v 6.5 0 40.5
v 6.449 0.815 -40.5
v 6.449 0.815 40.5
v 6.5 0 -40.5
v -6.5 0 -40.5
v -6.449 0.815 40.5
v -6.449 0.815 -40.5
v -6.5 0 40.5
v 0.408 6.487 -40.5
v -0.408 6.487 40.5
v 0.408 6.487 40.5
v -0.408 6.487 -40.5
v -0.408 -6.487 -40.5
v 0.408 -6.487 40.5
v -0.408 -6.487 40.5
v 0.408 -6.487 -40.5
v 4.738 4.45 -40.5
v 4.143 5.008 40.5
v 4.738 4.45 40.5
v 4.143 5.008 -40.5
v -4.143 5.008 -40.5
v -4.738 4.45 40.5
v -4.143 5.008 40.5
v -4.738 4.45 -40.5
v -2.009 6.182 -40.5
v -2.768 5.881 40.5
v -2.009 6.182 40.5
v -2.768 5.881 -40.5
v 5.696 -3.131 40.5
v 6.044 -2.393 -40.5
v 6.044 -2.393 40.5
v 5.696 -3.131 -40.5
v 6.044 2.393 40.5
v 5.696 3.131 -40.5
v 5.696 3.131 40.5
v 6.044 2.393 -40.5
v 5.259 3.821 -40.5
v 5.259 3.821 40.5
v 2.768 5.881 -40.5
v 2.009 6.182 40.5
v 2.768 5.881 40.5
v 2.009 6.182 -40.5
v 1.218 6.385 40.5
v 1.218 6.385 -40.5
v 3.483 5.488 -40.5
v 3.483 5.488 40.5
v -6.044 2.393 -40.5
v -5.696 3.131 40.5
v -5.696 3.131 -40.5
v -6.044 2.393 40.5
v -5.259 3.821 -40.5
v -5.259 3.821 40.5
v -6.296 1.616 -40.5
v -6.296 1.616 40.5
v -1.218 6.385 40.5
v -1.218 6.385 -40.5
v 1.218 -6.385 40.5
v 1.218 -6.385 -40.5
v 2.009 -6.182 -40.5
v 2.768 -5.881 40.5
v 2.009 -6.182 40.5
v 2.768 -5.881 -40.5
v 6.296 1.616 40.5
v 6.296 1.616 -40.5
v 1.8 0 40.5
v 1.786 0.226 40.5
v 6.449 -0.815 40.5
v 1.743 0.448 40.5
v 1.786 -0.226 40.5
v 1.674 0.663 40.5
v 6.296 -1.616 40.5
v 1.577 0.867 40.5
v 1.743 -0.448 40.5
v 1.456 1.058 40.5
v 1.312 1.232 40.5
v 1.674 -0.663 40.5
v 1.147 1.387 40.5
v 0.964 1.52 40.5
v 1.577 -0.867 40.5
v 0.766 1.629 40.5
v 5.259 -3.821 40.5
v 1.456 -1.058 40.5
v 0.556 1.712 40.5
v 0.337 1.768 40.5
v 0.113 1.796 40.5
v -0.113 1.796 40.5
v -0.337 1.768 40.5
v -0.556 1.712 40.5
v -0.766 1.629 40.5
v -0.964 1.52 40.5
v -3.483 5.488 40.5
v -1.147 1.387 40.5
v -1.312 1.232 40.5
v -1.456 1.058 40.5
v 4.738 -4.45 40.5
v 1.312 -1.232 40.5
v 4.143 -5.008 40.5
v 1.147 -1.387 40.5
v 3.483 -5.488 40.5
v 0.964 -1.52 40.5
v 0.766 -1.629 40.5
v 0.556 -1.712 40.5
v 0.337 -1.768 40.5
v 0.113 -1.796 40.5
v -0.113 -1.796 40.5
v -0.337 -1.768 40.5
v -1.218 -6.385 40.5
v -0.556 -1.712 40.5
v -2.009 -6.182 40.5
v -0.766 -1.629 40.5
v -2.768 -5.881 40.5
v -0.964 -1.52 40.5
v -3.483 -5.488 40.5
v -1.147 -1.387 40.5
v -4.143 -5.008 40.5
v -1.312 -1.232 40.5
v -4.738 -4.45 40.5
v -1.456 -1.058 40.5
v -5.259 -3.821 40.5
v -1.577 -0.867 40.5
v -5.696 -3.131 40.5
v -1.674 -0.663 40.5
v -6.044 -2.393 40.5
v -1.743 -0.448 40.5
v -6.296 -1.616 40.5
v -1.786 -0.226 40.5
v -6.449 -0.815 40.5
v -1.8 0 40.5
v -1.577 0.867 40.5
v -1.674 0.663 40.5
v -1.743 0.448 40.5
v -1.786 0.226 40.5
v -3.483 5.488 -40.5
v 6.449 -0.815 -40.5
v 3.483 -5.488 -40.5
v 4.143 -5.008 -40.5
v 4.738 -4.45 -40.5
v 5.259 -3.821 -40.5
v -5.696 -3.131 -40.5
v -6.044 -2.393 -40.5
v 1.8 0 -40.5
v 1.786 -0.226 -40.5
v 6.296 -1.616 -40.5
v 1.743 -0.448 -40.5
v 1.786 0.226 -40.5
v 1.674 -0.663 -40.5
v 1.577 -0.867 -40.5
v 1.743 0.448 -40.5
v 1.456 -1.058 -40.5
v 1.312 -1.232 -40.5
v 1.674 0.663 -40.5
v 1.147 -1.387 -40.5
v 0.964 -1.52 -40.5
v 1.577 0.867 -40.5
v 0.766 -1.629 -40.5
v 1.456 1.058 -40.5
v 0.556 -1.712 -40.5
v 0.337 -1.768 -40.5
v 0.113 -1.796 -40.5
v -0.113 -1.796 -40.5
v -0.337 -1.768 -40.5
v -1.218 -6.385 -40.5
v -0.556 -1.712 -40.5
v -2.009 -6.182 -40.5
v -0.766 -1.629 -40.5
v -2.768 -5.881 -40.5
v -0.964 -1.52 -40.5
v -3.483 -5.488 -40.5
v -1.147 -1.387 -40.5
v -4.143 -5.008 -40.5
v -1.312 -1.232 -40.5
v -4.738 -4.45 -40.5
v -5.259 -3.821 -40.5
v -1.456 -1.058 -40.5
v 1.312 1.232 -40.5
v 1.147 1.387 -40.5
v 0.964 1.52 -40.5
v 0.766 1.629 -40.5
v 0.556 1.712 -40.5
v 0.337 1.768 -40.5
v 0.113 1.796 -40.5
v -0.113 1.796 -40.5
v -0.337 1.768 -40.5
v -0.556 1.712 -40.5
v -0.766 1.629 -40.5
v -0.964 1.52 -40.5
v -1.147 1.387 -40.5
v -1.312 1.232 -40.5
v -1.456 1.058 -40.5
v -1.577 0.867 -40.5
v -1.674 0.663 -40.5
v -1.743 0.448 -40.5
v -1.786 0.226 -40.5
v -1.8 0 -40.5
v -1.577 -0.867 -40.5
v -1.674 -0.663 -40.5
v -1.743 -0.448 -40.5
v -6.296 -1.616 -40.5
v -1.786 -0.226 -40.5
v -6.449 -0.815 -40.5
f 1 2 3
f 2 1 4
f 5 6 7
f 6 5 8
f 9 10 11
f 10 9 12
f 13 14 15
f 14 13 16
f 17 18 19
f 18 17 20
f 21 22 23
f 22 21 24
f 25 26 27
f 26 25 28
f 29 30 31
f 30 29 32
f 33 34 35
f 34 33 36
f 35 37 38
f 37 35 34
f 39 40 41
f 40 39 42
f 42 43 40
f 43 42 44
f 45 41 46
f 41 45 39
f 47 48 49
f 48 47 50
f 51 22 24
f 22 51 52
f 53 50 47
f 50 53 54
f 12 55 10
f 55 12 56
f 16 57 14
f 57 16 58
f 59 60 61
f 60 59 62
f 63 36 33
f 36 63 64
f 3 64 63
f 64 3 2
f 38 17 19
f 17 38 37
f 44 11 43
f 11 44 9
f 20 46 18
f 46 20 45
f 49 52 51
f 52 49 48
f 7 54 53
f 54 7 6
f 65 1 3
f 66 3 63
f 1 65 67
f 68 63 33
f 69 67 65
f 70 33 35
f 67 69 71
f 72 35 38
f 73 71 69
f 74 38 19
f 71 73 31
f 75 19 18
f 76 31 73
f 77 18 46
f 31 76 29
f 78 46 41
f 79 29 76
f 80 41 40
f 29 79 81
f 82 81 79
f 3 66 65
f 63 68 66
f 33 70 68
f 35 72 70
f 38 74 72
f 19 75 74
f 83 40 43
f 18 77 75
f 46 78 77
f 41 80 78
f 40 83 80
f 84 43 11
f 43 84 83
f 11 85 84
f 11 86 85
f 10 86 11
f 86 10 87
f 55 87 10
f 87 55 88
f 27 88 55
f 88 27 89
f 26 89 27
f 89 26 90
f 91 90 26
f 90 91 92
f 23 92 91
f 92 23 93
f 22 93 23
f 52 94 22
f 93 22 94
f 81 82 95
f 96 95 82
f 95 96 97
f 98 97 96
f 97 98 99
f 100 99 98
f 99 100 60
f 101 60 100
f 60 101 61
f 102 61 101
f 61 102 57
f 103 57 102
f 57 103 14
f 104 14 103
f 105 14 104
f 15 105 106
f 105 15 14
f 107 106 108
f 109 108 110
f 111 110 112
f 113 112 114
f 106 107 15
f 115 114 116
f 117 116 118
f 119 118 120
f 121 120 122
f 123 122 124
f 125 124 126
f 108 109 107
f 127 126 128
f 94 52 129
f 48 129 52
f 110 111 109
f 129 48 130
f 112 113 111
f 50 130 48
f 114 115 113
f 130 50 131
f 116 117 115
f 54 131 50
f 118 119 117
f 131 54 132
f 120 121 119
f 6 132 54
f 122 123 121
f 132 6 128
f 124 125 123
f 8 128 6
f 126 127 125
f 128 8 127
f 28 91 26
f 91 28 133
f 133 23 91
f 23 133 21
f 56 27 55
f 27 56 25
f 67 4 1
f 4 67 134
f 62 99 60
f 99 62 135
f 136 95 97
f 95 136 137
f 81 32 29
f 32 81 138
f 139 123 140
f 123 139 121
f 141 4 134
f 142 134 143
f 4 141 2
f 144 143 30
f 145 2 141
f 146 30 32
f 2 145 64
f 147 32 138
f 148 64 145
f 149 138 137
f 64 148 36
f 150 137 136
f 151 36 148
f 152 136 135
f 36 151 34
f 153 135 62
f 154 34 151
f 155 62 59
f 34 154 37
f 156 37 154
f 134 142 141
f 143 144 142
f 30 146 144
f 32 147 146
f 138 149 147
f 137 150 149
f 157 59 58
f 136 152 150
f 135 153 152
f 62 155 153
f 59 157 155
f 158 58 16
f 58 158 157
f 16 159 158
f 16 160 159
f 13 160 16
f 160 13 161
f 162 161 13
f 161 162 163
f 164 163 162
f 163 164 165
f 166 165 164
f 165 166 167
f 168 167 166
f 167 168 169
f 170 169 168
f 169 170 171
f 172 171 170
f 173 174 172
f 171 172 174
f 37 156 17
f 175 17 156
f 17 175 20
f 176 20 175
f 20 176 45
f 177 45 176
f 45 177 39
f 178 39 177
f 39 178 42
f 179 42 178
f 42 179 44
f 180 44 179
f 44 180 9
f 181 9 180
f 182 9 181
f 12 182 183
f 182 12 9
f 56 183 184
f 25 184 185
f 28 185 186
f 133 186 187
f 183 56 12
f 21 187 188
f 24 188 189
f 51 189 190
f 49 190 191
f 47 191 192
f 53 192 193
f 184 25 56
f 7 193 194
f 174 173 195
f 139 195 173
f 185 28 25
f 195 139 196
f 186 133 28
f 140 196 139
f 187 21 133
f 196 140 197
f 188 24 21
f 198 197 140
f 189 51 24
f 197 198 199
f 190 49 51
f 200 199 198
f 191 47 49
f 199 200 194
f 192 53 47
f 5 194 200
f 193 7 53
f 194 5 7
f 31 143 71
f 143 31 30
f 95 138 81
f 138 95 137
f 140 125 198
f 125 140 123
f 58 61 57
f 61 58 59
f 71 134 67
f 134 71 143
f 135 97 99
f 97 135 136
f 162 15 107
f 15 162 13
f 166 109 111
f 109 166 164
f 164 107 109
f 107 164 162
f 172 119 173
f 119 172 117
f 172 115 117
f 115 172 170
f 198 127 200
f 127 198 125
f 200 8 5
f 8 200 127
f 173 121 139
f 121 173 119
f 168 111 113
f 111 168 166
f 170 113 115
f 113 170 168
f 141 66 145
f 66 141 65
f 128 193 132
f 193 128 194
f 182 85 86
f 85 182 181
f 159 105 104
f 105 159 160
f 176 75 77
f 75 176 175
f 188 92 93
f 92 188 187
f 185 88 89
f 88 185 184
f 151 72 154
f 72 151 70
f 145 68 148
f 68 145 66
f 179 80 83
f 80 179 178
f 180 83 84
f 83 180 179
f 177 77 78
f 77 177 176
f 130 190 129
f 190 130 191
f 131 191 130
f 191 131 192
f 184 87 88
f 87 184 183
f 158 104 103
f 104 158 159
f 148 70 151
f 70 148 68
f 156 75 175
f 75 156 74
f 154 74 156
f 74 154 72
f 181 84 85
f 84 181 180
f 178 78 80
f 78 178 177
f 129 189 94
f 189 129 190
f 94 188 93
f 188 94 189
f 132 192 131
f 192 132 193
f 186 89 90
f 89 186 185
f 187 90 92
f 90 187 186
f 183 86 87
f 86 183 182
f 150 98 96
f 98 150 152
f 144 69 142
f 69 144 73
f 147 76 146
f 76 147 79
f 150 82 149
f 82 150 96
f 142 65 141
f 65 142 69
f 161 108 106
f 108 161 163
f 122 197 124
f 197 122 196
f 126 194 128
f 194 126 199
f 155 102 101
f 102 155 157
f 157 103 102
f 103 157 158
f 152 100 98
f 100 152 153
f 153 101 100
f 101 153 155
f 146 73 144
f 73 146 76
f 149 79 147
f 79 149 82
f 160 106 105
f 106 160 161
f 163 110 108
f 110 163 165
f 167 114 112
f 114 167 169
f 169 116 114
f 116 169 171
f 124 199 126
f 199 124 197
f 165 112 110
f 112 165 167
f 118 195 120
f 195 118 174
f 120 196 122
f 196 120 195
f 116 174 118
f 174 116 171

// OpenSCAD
$fn = 50;


difference() {
	union() {
		translate(v = [0, 0, -40.5000000000]) {
			cylinder(h = 81, r = 6.5000000000);
		}
	}
	union() {
		translate(v = [0, 0, -100.0000000000]) {
			cylinder(h = 200, r = 1.8000000000);
		}
	}
}
